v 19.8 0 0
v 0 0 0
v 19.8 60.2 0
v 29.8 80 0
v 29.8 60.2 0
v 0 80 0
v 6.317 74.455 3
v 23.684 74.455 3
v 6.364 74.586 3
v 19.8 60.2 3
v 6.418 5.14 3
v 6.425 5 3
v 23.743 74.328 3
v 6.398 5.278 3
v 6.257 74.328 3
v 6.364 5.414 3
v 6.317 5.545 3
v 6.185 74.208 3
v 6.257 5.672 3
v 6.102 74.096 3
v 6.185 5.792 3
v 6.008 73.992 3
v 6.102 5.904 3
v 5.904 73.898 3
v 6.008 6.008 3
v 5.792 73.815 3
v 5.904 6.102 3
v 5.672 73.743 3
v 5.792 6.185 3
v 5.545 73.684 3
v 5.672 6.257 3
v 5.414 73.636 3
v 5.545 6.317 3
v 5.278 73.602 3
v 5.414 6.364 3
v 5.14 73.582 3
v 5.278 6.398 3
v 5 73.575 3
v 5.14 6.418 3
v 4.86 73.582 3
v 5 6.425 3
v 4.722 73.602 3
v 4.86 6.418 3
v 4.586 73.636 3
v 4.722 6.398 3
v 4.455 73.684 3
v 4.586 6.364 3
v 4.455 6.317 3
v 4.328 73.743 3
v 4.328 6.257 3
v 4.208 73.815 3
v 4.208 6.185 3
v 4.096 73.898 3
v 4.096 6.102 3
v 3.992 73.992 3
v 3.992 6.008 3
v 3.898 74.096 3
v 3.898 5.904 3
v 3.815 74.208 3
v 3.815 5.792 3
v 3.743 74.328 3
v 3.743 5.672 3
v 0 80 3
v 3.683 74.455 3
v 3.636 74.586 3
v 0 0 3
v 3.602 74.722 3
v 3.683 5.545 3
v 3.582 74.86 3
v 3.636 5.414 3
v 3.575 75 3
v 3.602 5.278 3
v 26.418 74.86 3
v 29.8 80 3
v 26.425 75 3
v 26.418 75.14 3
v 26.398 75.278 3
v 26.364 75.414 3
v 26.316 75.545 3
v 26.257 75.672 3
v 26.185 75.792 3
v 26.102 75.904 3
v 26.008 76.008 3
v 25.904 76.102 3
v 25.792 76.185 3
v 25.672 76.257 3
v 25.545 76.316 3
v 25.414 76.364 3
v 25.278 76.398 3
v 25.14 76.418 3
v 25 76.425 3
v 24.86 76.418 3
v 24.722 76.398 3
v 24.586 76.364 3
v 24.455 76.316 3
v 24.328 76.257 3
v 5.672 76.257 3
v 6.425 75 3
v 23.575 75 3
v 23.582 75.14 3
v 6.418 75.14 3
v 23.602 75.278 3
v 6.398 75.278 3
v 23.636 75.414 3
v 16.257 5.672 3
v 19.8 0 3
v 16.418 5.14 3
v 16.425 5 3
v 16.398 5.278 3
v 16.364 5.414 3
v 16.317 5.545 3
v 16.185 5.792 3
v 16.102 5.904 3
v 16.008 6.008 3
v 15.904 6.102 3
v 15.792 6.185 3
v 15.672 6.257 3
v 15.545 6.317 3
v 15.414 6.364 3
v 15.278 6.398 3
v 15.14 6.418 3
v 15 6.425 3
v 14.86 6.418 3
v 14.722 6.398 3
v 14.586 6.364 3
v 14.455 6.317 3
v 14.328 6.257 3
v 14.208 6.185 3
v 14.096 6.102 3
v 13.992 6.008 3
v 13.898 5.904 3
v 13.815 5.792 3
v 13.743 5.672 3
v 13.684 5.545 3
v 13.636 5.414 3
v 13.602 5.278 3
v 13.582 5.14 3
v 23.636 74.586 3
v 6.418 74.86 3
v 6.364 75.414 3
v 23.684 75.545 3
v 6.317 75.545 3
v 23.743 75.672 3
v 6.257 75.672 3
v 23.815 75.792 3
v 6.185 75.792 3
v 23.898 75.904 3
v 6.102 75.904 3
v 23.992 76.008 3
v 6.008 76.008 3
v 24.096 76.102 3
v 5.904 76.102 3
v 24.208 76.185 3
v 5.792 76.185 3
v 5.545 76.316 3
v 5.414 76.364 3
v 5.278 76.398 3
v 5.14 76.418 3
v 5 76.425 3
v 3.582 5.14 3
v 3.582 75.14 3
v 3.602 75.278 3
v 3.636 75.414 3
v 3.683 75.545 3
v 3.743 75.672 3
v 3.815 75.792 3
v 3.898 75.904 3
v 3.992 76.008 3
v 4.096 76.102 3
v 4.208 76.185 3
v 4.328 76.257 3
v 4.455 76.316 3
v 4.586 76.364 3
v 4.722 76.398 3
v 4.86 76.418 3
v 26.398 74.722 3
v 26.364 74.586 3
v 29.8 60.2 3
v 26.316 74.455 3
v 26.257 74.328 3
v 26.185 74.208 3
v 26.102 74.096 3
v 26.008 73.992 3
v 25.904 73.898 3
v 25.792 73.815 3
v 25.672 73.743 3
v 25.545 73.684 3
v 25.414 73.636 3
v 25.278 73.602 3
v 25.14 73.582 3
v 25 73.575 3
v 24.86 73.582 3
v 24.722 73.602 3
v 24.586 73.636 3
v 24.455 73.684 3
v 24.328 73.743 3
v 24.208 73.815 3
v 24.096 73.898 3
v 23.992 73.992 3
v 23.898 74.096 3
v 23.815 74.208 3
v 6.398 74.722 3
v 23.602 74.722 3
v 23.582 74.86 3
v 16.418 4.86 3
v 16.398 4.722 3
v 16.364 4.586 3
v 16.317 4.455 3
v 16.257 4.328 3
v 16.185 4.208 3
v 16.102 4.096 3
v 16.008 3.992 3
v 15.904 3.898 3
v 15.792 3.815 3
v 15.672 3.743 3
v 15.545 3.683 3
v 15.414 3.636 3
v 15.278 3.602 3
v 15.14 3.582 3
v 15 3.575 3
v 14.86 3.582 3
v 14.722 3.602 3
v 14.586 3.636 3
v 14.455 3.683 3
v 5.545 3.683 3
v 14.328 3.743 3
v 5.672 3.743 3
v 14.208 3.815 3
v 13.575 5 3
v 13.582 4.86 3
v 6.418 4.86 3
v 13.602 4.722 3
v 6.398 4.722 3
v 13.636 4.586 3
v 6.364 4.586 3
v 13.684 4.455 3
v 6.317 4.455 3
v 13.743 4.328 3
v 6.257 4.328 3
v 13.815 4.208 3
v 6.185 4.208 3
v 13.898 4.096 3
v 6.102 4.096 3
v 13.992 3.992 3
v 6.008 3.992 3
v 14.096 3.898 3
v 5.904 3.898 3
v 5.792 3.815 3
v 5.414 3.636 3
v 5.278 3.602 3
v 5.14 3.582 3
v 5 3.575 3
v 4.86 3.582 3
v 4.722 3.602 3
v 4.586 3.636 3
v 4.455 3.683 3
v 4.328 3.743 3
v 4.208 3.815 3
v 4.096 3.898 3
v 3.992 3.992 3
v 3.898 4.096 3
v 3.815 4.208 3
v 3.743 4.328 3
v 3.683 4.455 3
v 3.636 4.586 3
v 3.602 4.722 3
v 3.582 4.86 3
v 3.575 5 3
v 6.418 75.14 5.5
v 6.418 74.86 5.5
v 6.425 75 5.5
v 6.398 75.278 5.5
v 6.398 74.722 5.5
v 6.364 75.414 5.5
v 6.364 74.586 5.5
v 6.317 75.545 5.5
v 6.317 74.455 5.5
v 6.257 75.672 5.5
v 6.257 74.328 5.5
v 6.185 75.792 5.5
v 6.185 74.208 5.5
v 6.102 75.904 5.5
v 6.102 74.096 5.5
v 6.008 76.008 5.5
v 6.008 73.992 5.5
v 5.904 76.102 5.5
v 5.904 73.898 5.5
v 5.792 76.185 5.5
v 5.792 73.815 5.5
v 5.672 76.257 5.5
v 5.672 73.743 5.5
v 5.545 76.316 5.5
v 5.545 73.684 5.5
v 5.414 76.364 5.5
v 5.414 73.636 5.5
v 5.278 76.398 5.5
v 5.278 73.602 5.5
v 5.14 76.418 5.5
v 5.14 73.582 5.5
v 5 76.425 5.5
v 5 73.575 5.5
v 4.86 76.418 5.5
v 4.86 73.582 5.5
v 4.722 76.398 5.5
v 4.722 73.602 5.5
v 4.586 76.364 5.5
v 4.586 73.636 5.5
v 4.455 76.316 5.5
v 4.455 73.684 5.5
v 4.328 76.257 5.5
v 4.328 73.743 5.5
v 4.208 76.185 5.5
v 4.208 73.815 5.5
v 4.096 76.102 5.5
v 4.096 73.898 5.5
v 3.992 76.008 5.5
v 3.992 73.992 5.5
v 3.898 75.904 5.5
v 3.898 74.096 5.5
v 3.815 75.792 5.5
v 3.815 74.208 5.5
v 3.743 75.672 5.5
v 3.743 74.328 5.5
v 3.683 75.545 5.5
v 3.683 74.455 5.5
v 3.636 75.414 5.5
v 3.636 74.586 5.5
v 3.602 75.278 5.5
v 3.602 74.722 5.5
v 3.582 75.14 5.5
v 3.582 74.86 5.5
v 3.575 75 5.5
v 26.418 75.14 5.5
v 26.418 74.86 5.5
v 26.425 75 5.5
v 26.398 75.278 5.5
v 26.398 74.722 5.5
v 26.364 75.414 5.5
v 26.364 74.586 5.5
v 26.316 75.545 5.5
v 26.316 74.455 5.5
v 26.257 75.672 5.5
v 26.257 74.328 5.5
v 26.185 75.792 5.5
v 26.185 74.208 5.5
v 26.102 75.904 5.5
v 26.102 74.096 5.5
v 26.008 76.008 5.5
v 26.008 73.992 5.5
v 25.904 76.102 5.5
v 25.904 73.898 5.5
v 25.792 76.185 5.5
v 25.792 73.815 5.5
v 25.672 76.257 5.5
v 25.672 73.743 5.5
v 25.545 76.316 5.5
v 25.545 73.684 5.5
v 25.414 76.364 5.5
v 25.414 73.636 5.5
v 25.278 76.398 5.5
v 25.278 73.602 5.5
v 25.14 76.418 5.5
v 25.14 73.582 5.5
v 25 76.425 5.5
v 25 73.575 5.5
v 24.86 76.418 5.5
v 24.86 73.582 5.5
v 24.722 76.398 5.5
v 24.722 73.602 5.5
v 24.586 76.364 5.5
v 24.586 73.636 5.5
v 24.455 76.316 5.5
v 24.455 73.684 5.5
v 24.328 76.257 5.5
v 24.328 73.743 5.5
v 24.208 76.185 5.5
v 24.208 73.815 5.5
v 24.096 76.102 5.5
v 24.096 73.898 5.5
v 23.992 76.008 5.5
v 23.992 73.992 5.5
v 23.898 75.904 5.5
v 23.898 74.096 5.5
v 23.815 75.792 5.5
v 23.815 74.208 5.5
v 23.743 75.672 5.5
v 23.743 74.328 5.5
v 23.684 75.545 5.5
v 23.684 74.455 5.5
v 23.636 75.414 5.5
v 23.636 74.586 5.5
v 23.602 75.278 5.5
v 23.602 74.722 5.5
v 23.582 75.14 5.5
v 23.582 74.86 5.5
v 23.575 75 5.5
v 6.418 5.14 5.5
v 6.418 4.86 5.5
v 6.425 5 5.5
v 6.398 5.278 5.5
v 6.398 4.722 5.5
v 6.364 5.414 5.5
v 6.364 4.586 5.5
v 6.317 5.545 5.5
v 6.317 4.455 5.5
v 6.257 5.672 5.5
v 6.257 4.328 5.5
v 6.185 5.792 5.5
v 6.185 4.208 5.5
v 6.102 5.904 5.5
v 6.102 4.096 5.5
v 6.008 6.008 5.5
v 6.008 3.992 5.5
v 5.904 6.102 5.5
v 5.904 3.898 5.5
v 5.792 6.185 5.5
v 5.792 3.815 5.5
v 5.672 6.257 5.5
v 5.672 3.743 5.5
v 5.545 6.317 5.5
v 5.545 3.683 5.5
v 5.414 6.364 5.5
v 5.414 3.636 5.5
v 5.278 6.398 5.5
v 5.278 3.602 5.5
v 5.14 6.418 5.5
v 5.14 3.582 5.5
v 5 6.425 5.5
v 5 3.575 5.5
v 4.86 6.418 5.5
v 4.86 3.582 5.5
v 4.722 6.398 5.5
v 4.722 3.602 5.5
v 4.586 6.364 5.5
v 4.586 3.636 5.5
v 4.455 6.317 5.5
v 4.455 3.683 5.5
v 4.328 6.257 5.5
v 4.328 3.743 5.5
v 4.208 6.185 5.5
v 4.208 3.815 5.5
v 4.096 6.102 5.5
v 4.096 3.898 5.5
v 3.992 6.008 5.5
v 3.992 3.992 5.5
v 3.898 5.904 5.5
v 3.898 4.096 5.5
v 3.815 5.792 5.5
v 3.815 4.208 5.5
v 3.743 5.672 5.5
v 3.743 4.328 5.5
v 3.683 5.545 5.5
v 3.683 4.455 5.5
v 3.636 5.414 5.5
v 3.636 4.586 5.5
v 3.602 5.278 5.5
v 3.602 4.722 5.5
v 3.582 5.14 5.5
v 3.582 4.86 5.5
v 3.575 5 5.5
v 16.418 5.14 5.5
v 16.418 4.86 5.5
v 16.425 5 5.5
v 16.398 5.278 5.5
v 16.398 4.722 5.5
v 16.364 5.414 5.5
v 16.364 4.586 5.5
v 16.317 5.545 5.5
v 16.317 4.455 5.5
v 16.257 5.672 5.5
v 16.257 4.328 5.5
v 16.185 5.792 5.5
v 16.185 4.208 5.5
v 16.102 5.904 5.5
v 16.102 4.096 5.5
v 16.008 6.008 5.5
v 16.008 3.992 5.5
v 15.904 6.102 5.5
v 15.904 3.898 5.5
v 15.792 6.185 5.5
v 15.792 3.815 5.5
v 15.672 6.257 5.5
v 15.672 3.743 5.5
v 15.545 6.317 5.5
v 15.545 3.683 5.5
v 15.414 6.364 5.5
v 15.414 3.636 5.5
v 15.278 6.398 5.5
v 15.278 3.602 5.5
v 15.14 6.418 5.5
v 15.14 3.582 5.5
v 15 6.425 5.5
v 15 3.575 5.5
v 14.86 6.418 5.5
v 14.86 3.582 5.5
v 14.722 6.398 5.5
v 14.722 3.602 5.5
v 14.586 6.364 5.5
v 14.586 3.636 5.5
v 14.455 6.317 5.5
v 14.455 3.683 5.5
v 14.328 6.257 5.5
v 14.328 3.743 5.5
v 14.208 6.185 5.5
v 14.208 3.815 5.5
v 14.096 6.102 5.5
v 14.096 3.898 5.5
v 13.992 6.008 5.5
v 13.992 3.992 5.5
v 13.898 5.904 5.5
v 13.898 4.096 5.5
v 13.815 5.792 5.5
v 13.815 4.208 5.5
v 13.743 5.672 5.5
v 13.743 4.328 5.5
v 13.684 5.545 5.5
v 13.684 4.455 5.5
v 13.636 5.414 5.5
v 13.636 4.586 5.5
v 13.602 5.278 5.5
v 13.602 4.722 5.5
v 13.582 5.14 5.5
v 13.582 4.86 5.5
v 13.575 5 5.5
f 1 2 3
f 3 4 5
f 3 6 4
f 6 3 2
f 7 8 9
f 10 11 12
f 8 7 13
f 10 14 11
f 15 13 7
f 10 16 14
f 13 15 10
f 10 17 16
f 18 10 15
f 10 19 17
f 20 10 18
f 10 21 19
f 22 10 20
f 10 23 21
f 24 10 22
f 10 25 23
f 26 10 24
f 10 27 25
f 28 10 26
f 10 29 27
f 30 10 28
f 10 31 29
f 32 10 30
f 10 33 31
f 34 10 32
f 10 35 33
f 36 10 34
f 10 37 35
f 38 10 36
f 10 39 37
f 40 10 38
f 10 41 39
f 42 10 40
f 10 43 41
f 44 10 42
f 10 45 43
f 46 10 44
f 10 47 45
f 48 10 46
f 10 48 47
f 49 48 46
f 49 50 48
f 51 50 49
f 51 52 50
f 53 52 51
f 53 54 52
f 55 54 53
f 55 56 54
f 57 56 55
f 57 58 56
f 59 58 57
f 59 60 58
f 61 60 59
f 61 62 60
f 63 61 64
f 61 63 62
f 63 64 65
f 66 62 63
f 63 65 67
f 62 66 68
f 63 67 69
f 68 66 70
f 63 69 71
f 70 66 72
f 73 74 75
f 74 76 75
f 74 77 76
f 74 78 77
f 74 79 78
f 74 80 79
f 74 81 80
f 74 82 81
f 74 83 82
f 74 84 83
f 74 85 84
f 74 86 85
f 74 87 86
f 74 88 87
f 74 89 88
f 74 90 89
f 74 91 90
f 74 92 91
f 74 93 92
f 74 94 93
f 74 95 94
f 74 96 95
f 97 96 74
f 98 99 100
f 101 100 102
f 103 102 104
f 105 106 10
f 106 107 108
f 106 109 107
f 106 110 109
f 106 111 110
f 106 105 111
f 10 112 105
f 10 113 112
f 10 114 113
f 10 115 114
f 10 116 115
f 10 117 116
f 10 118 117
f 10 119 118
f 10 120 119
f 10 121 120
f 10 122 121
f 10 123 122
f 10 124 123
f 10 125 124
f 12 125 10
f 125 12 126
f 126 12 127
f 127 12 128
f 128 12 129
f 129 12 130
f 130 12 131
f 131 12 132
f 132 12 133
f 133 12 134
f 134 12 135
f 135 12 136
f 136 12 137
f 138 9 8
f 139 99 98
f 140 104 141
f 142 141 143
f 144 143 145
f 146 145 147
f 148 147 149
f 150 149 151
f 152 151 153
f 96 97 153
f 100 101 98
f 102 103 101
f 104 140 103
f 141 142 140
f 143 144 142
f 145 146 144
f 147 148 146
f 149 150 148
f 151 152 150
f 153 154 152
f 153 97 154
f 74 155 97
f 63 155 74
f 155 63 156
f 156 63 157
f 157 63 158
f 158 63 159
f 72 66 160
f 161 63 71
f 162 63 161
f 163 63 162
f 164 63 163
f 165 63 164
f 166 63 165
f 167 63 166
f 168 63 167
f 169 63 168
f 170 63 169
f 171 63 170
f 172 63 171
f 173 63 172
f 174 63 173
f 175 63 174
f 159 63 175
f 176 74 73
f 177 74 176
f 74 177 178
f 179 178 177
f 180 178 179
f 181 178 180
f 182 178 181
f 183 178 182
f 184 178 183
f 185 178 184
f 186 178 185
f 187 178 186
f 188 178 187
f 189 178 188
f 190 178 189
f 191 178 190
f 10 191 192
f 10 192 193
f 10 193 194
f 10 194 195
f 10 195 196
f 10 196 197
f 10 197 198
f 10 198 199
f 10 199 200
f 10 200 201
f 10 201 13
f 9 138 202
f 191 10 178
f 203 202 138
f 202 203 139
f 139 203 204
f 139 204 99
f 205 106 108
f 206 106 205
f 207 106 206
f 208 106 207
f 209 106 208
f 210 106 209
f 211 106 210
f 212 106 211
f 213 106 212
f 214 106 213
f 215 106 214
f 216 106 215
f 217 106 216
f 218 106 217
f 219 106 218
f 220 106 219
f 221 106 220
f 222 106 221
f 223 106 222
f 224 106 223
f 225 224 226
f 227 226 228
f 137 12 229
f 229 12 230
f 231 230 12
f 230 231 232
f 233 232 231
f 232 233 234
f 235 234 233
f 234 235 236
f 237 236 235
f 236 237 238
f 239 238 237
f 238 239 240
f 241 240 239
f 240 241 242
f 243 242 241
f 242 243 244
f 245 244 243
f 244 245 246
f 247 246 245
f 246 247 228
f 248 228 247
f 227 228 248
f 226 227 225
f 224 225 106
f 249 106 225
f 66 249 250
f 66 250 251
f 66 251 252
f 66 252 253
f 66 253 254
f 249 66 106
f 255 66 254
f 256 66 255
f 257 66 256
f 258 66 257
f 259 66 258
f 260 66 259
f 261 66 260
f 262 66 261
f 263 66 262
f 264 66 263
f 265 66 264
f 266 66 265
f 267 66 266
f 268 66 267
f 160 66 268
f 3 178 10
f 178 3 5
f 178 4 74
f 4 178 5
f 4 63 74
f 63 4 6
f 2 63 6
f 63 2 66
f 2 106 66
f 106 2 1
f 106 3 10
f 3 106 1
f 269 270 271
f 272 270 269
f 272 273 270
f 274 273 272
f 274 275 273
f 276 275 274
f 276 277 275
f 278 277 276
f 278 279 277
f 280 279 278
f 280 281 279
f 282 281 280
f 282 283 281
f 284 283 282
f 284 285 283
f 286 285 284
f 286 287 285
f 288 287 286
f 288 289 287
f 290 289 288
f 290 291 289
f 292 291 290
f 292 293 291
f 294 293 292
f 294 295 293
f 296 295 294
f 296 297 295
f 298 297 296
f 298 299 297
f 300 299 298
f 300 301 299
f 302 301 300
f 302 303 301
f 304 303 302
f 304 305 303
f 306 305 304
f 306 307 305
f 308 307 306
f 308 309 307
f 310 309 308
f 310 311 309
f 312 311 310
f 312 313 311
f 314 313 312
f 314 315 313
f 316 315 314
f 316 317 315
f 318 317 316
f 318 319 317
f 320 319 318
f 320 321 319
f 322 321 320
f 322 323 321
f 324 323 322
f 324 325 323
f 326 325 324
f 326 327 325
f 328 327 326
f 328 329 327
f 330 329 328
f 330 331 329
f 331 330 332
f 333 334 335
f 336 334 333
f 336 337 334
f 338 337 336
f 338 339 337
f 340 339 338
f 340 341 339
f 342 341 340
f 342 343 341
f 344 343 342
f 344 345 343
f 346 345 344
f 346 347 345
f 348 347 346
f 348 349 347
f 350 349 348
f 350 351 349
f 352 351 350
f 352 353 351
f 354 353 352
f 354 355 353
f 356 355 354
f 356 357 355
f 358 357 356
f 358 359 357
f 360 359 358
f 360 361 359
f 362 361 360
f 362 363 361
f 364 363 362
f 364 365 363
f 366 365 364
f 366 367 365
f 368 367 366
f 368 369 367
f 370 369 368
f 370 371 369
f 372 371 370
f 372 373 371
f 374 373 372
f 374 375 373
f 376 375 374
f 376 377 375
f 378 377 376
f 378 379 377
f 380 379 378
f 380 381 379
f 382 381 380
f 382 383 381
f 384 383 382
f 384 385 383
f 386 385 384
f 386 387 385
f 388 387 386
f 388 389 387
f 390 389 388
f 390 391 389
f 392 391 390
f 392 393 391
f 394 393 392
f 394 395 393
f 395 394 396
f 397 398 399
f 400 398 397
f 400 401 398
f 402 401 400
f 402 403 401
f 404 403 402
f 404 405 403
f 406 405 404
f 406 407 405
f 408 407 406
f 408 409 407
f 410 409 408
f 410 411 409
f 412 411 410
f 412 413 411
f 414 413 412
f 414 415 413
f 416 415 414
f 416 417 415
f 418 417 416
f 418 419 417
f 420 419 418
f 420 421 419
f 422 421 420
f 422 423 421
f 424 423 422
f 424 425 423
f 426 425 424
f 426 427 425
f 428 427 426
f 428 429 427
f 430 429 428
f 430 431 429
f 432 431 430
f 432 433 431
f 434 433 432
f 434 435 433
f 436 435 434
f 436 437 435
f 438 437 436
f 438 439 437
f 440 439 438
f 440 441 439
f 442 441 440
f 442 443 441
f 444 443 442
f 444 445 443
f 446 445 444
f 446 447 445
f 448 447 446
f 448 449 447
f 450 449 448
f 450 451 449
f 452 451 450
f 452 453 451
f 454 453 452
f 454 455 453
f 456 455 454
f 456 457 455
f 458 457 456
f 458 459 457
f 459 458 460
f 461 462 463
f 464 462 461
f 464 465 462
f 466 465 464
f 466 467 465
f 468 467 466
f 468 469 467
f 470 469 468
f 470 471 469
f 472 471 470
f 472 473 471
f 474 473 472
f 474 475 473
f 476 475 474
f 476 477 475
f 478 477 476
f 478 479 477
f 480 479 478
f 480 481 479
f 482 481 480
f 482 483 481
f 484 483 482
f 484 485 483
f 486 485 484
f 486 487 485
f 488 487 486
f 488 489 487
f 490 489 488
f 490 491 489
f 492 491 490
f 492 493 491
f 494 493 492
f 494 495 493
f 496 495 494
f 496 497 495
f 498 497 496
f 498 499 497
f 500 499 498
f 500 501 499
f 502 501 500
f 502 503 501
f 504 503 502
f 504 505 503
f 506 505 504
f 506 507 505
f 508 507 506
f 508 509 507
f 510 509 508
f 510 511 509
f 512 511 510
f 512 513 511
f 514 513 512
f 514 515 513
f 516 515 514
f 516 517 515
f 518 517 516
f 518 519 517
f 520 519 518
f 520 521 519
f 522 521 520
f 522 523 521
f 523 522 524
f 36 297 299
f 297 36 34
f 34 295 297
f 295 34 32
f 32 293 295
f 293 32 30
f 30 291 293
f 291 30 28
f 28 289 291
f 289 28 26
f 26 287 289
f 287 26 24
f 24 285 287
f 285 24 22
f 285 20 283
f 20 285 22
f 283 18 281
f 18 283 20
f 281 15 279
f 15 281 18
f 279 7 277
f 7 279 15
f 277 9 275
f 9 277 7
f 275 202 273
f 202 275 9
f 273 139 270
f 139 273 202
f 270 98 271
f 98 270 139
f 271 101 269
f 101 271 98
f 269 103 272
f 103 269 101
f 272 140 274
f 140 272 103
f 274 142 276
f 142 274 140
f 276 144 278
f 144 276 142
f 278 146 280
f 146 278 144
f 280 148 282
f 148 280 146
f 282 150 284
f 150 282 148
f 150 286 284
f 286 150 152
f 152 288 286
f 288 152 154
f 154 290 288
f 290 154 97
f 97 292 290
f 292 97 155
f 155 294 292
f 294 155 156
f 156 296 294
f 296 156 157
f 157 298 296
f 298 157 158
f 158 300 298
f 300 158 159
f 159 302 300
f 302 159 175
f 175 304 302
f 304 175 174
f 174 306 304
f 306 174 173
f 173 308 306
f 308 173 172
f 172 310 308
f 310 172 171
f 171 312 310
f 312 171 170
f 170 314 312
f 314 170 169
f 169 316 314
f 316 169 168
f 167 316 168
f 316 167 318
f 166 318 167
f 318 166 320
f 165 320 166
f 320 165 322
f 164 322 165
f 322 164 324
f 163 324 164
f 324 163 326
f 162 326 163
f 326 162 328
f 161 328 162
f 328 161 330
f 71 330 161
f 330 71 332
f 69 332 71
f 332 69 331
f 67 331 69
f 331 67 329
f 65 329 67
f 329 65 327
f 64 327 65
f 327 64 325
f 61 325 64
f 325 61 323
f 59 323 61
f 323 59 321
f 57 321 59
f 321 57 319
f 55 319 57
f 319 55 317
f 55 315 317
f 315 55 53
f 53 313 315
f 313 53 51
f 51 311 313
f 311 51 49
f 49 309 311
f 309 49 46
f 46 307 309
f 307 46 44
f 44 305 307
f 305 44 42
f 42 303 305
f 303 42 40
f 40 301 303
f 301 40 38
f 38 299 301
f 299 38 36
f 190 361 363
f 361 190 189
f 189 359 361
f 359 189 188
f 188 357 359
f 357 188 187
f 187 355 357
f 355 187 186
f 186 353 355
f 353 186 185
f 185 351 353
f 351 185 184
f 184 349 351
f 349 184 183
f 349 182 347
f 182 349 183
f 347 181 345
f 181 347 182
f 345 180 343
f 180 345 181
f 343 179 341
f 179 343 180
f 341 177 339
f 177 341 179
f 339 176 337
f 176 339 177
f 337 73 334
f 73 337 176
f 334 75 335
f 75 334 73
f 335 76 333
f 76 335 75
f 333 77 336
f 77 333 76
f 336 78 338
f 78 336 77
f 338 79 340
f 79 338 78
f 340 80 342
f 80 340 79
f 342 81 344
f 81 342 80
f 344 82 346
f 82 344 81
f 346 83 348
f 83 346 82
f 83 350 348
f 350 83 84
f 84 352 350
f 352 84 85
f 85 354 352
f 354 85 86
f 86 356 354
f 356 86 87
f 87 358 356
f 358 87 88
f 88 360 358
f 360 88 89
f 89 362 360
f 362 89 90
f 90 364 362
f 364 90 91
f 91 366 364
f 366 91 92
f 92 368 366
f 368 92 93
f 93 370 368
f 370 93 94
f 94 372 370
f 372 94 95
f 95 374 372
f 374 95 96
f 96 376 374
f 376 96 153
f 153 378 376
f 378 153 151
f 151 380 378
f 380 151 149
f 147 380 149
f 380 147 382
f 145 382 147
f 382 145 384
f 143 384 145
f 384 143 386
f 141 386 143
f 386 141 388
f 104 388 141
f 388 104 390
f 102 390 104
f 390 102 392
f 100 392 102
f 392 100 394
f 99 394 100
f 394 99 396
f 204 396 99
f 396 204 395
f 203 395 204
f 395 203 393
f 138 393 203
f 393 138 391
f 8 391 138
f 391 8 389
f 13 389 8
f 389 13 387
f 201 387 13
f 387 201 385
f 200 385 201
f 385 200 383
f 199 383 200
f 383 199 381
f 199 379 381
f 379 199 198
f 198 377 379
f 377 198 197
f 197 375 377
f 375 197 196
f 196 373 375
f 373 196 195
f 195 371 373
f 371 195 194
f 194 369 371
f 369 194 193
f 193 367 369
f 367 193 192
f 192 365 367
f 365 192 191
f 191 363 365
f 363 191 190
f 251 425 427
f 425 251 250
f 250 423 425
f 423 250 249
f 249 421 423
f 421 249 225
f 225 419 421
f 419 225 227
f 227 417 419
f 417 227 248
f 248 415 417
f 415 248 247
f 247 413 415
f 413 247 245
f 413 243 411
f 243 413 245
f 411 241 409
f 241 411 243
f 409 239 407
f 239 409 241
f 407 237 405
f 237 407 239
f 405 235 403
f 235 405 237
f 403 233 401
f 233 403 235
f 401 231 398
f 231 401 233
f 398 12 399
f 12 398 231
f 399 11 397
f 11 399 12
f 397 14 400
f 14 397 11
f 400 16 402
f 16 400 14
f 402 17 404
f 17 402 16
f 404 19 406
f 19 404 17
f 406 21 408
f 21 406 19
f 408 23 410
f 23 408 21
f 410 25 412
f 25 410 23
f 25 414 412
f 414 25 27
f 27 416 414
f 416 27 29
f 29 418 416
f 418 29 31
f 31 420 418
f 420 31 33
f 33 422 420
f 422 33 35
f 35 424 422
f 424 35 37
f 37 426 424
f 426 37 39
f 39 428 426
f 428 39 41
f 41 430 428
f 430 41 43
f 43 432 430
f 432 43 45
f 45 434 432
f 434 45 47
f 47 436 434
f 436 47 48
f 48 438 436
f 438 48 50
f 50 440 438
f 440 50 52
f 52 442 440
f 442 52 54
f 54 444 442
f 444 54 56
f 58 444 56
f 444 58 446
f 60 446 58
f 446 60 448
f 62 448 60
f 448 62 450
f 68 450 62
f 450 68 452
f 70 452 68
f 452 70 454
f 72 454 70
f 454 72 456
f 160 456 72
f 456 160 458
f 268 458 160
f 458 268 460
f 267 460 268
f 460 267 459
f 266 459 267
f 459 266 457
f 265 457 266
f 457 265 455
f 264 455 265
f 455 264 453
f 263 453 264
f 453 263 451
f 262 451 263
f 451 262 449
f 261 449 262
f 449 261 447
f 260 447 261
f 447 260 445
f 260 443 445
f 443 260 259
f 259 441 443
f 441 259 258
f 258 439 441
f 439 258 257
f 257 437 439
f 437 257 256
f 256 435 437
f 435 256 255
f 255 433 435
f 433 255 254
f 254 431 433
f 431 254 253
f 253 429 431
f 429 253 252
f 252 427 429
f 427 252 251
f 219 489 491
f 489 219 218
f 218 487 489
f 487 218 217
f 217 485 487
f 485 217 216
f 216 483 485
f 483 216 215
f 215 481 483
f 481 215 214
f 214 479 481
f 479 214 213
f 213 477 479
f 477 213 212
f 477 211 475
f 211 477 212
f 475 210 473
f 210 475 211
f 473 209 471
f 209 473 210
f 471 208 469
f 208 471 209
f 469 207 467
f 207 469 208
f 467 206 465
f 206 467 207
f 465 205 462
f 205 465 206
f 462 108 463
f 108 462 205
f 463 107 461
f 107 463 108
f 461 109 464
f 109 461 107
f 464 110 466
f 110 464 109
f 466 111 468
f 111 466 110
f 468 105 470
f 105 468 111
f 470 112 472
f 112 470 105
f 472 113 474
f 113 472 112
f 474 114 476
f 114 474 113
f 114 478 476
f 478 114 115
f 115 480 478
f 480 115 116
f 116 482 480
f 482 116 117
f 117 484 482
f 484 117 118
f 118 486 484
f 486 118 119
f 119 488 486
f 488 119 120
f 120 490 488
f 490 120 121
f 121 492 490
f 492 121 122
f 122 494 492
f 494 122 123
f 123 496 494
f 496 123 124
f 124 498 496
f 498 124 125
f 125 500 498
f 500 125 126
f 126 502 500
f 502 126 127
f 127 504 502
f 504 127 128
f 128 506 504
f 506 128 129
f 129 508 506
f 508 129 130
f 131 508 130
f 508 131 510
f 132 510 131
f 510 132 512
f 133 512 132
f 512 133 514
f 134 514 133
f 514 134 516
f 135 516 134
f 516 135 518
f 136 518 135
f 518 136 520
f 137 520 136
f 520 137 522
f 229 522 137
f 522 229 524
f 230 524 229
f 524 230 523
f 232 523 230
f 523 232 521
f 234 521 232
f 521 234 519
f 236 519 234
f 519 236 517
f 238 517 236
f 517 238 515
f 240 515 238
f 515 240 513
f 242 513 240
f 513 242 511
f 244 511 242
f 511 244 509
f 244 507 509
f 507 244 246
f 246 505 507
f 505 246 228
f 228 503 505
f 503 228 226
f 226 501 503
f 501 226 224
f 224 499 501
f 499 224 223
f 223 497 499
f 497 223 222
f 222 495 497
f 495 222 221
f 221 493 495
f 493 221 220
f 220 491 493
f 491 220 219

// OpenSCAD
// file: TM4-inserts/common/params.scad
$fn = $preview ? 32 : 64;

// Value of kerf to apply when lasercutting things.
// Value is based on the experience using Epilog Mini machine in
// Google WFC Makerspace.
kerf = 0.2;

// Spacing between insert and miniatures bases to allow to slick fit.
insert_spacing = 0.2;
magnet_spacing = 0.15;

// Default values
//
// Default diameter of magnets used for my miniatures.
default_magnet_diameter = 3;
base_height = 3;
pin_height = 2.5;
// file: TM4-inserts/common/kow.scad
include <params.scad>;

module MagnetSockets(unit_type, only_diagonal = false) {
  baseSize = BaseSize(unit_type);

  translate([ 5, baseSize[1] - 5 ]) children(0);
  translate([ baseSize[0] - 5, 5 ]) children(0);

  if (!only_diagonal) {
    translate([ 5, 5 ]) children(0);
    translate([ baseSize[0] - 5, baseSize[1] - 5 ]) children(0);
  }
}

module Magnet(d = default_magnet_diameter, offset = 0) {
  circle(d = d + offset);
}

module BM4Sockets(unit_type, spacing, only_diagonal = false) {
  MagnetSockets(unit_type = unit_type, only_diagonal = only_diagonal) {
    Magnet(offset = spacing);
  }
}

module Base(unit_type, extraMargin = [ 0, 0 ]) {
  square(BaseSize(unit_type) + extraMargin);
}

function BaseSize(unit_type) = unit_type == "infantry"         ? [ 20, 20 ]
                               : unit_type == "heavy_infantry" ? [ 25, 25 ]
                               : unit_type == "cavalry"        ? [ 25, 50 ]
                               : unit_type == "lrginf"         ? [ 40, 40 ]
                               : unit_type == "lrgcav"         ? [ 50, 50 ]
                               : unit_type == "titan"          ? [ 75, 75 ]
                                                               : [ 10, 10 ];

function BaseNum(unit_type, unitSize) =
    unit_type == "infantry"  ? unitSize == "legion"     ? [ 10, 6 ]
                               : unitSize == "horde"    ? [ 10, 4 ]
                               : unitSize == "regiment" ? [ 5, 4 ]
                                                        : [ 5, 2 ]
    : unit_type == "cavalry" ? unitSize == "regiment" ? [ 5, 2 ] : [ 5, 1 ]
    : unit_type == "lrginf"  ? unitSize == "regiment" ? [ 3, 1 ] : [ 3, 2 ]
    : unit_type == "lrgcav"  ? unitSize == "regiment" ? [ 3, 1 ]
                               : unitSize == "horde"  ? [ 3, 2 ]
                                                      : [ 1, 1 ]
                             : [ 1, 1 ];
// file: TM4-inserts/libinsert.scad
include <common/kow.scad>;

module Pin() {
  Magnet(offset = -magnet_spacing);
}

module LInsert(size, unit_size, unit_type = "infantry") {
  base_num = BaseNum(unit_type, unit_size);
  base_size = BaseSize(unit_type);

  union() {
    width = size * base_size[0];
    length = base_num[1] * base_size[1];

    linear_extrude(height = base_height) {
      square(size =
                 [ width - 10 - insert_spacing, base_num[1] * base_size[1] ]);
      translate(v = [ 0, length - base_size[1] + insert_spacing]) {
        square(size = [ width - insert_spacing, base_size[1] - insert_spacing ]);
      }
    }
    translate(v = [ 0, 0, base_height ]) linear_extrude(height = pin_height) {
      translate(v = [ 5, 5 ]) Pin();
      translate(v = [ 5, length - 5 ]) Pin();
      translate(v = [ width - 5, length - 5 ]) Pin();

      if (size > 1) {
        translate(v = [ width - 5 - 10, 5 ]) Pin();
      }
    }
  }
}

module SideInsert(size, unit_size, unit_type = "infantry") {
  base_num = BaseNum(unit_type, unit_size);
  base_size = BaseSize(unit_type);

  union() {
    width = size * base_size[0];
    length = base_num[1] * base_size[1];

    linear_extrude(height = base_height) {
      difference() {
        square(size = [ width - insert_spacing, length ]);
        translate([width, length/2]) circle(0.5);
      }
    }
    translate(v = [ 0, 0, 3 ]) linear_extrude(height = pin_height) {
      translate(v = [ 5, 5 ]) Pin();
      translate(v = [ 5, length - 5 ]) Pin();
      if (size >= 1) {
        translate(v = [ width - 5, 5 ]) Pin();
        translate(v = [ width - 5, length - 5 ]) Pin();
      }
    }
  }
}
// main file
use <TM4-inserts/libinsert.scad>;

$fn = $preview ? 32 : 64;

LInsert(1.5, "regiment", "infantry");
